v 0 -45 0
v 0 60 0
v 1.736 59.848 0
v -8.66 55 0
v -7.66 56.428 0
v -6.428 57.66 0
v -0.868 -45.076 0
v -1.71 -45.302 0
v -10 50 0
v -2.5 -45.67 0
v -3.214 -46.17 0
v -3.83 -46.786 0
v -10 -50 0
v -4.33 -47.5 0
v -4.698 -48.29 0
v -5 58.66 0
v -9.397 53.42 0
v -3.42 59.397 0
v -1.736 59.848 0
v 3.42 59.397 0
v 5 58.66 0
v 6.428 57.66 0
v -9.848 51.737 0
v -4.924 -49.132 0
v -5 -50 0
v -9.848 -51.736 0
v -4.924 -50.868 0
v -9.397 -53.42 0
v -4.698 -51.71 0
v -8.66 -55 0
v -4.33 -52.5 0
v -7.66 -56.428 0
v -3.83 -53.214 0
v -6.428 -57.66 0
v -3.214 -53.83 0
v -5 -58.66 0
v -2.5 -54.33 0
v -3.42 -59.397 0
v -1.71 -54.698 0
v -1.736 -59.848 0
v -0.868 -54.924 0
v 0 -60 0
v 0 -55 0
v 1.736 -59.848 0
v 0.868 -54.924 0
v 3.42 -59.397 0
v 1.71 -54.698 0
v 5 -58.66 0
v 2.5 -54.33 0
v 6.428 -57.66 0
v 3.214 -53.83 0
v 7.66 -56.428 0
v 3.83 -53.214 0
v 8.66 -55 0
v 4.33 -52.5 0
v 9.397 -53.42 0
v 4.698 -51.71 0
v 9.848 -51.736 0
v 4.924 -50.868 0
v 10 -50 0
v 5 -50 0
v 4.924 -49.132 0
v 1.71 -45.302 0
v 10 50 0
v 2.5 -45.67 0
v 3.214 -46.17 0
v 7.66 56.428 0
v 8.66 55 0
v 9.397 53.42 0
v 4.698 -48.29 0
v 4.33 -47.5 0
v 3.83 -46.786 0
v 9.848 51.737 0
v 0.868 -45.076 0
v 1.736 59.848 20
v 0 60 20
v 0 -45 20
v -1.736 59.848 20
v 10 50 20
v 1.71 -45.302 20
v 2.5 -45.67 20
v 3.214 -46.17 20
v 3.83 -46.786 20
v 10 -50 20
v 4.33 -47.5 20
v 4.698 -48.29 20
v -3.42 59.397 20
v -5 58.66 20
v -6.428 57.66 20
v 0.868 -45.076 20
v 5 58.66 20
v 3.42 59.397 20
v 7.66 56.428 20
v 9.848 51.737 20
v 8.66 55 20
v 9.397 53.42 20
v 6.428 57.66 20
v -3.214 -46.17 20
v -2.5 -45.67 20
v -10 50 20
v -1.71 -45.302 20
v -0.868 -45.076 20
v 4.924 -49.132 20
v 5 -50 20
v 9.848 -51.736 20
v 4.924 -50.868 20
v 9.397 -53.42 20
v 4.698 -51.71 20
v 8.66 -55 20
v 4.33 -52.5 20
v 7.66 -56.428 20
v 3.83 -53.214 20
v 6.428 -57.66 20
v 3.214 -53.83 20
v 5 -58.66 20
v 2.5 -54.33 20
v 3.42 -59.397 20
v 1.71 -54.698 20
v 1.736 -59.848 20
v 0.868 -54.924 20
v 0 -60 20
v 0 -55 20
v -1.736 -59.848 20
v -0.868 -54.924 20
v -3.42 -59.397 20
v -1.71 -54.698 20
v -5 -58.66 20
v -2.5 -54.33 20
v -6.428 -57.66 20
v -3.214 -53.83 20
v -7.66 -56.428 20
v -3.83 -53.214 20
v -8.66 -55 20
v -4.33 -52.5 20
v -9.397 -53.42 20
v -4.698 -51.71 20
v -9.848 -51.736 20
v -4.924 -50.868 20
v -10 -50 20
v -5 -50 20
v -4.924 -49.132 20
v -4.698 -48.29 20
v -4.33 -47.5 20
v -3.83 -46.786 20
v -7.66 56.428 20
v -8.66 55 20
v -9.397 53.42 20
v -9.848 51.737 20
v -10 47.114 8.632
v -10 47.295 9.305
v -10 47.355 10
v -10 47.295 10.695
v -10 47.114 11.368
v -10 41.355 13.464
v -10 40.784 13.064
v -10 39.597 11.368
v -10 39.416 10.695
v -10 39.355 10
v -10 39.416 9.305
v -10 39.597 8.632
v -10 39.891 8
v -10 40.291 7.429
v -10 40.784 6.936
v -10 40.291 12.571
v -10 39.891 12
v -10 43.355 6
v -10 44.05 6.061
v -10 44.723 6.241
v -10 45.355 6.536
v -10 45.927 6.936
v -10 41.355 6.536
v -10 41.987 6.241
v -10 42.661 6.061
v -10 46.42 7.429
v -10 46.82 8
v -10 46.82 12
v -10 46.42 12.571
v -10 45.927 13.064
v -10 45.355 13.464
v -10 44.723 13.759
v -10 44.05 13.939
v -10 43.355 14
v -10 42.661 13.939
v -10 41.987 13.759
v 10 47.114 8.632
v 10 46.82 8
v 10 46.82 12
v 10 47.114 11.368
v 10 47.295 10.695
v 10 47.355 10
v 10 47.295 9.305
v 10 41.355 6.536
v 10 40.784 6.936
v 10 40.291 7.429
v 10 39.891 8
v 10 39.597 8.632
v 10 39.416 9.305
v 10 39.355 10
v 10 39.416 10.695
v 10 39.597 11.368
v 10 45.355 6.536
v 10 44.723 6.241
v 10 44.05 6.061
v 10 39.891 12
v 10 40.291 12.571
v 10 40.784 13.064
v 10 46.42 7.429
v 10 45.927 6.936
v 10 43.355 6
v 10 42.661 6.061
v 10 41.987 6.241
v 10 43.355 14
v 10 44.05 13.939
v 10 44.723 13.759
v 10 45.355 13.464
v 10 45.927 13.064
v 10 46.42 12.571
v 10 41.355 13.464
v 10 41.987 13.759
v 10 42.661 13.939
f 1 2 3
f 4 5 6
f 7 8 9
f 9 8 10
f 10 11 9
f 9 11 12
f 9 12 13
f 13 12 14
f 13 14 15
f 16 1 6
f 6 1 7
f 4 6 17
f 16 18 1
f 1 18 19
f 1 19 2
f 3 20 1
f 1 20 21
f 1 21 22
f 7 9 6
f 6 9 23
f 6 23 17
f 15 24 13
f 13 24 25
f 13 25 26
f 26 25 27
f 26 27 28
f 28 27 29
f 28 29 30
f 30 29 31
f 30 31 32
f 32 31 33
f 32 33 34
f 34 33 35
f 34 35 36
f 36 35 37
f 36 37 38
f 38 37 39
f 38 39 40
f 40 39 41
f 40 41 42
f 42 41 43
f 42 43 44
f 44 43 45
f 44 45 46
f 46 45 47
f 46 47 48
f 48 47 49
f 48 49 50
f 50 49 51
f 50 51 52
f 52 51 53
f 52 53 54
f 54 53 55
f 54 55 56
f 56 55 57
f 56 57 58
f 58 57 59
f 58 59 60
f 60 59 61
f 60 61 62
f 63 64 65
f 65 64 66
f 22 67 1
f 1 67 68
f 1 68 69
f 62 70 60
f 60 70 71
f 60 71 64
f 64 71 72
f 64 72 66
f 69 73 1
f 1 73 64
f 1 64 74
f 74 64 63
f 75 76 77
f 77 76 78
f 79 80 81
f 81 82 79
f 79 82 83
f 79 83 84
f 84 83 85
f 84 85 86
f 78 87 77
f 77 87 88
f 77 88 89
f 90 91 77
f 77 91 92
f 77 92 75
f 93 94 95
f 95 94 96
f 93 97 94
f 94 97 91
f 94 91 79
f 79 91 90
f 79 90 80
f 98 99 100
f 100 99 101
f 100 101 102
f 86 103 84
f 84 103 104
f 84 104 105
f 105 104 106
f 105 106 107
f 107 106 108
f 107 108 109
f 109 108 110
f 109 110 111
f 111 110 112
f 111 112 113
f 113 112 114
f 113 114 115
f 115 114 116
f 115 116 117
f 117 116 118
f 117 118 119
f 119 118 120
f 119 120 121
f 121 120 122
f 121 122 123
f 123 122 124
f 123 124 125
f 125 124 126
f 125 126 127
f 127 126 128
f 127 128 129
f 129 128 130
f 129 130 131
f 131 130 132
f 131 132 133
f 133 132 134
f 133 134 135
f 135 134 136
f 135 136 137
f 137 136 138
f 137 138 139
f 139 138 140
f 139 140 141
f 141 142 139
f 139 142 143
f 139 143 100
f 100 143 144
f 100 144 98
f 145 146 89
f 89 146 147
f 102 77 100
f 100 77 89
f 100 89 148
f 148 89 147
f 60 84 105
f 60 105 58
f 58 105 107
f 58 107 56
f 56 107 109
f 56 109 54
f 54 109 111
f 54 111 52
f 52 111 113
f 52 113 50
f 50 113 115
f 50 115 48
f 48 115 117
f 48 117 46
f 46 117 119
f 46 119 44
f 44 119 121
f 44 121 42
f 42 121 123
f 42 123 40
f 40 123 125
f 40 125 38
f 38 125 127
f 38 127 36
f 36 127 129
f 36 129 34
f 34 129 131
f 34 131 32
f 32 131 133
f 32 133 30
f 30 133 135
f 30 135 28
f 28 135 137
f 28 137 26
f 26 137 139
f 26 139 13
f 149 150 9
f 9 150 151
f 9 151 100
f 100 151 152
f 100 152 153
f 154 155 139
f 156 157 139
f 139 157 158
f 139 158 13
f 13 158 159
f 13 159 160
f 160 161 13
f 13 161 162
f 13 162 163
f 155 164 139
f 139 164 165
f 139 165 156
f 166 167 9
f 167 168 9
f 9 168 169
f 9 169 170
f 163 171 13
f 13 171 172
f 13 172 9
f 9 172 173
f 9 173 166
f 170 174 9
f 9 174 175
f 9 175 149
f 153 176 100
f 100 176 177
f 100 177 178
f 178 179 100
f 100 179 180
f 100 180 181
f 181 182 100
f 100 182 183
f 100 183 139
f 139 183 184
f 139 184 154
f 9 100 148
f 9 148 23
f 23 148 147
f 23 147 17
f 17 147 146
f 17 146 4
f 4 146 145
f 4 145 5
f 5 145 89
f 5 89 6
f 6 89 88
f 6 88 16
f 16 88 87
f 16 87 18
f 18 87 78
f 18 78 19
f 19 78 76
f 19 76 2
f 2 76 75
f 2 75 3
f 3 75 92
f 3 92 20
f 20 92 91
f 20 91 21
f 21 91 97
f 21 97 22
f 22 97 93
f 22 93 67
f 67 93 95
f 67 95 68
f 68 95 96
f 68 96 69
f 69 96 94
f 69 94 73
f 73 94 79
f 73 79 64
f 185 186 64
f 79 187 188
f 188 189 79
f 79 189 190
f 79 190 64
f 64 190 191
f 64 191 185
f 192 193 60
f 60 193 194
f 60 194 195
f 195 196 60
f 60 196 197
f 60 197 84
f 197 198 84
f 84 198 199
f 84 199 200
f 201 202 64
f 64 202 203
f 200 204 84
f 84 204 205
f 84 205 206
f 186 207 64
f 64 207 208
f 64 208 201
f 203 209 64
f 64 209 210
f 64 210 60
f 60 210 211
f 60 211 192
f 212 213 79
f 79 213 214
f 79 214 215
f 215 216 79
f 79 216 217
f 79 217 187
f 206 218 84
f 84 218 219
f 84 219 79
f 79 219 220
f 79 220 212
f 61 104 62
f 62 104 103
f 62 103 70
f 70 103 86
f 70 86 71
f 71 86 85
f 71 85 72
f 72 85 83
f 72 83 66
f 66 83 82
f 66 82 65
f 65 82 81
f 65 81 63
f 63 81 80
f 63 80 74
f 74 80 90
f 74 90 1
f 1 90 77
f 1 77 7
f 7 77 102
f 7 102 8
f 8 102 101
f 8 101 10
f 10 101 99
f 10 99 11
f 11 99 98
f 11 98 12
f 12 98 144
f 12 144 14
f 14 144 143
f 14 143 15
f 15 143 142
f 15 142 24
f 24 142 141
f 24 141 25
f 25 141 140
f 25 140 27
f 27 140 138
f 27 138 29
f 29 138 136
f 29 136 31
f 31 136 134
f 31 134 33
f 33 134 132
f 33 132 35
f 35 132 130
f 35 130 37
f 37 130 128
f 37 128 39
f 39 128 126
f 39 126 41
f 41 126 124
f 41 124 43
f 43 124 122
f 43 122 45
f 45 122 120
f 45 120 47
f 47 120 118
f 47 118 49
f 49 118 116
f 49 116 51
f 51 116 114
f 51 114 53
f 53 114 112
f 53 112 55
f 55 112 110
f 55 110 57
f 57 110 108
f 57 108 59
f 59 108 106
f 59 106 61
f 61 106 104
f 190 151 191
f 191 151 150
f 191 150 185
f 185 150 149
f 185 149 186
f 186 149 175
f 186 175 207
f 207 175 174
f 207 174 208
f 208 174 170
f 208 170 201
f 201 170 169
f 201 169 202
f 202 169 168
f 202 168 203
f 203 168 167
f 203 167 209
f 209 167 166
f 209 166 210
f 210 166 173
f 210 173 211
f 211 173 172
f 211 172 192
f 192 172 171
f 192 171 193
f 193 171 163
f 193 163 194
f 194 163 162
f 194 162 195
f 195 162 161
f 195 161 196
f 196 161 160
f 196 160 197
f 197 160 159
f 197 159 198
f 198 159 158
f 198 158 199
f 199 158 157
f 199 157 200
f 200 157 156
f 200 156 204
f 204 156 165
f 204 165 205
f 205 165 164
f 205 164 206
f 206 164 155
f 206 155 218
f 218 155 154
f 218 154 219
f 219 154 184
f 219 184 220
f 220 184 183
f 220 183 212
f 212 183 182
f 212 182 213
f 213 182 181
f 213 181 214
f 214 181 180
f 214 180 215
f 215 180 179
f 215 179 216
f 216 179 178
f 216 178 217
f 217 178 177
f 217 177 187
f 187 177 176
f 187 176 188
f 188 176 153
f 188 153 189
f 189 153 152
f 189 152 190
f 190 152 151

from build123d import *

# Parameters (mm, degrees)
SKETCH2_R           = 5
BOSS_EXTRUDE1_DEPTH = 20
SKETCH4_R           = 4
CUT_EXTRUDE1_DEPTH  = 26


with BuildPart() as part:
    # Sketch2 → Boss-Extrude1 (new body)
    with BuildSketch(Plane.XY):
        with BuildLine():
            Line((-10, -50), (-10, 50))
            ThreePointArc((-10, 50), (0, 60), (10, 50))
            Line((10, 50), (10, -50))
            ThreePointArc((10, -50), (0, -60), (-10, -50))
        make_face()
        with Locations((0, -50)):
            Circle(SKETCH2_R, mode=Mode.SUBTRACT)
    extrude(amount=BOSS_EXTRUDE1_DEPTH)

    # Sketch4 → Cut-Extrude1 (cut)
    with BuildSketch(Plane(origin=(10, 0, 0), x_dir=(0, 0, -1), z_dir=(1, 0, 0))):
        with Locations(Location((-10, 43.355409554, 0), (0, 0, 90))):
            Circle(SKETCH4_R)
    extrude(amount=-CUT_EXTRUDE1_DEPTH, mode=Mode.SUBTRACT)


solid = part.part
